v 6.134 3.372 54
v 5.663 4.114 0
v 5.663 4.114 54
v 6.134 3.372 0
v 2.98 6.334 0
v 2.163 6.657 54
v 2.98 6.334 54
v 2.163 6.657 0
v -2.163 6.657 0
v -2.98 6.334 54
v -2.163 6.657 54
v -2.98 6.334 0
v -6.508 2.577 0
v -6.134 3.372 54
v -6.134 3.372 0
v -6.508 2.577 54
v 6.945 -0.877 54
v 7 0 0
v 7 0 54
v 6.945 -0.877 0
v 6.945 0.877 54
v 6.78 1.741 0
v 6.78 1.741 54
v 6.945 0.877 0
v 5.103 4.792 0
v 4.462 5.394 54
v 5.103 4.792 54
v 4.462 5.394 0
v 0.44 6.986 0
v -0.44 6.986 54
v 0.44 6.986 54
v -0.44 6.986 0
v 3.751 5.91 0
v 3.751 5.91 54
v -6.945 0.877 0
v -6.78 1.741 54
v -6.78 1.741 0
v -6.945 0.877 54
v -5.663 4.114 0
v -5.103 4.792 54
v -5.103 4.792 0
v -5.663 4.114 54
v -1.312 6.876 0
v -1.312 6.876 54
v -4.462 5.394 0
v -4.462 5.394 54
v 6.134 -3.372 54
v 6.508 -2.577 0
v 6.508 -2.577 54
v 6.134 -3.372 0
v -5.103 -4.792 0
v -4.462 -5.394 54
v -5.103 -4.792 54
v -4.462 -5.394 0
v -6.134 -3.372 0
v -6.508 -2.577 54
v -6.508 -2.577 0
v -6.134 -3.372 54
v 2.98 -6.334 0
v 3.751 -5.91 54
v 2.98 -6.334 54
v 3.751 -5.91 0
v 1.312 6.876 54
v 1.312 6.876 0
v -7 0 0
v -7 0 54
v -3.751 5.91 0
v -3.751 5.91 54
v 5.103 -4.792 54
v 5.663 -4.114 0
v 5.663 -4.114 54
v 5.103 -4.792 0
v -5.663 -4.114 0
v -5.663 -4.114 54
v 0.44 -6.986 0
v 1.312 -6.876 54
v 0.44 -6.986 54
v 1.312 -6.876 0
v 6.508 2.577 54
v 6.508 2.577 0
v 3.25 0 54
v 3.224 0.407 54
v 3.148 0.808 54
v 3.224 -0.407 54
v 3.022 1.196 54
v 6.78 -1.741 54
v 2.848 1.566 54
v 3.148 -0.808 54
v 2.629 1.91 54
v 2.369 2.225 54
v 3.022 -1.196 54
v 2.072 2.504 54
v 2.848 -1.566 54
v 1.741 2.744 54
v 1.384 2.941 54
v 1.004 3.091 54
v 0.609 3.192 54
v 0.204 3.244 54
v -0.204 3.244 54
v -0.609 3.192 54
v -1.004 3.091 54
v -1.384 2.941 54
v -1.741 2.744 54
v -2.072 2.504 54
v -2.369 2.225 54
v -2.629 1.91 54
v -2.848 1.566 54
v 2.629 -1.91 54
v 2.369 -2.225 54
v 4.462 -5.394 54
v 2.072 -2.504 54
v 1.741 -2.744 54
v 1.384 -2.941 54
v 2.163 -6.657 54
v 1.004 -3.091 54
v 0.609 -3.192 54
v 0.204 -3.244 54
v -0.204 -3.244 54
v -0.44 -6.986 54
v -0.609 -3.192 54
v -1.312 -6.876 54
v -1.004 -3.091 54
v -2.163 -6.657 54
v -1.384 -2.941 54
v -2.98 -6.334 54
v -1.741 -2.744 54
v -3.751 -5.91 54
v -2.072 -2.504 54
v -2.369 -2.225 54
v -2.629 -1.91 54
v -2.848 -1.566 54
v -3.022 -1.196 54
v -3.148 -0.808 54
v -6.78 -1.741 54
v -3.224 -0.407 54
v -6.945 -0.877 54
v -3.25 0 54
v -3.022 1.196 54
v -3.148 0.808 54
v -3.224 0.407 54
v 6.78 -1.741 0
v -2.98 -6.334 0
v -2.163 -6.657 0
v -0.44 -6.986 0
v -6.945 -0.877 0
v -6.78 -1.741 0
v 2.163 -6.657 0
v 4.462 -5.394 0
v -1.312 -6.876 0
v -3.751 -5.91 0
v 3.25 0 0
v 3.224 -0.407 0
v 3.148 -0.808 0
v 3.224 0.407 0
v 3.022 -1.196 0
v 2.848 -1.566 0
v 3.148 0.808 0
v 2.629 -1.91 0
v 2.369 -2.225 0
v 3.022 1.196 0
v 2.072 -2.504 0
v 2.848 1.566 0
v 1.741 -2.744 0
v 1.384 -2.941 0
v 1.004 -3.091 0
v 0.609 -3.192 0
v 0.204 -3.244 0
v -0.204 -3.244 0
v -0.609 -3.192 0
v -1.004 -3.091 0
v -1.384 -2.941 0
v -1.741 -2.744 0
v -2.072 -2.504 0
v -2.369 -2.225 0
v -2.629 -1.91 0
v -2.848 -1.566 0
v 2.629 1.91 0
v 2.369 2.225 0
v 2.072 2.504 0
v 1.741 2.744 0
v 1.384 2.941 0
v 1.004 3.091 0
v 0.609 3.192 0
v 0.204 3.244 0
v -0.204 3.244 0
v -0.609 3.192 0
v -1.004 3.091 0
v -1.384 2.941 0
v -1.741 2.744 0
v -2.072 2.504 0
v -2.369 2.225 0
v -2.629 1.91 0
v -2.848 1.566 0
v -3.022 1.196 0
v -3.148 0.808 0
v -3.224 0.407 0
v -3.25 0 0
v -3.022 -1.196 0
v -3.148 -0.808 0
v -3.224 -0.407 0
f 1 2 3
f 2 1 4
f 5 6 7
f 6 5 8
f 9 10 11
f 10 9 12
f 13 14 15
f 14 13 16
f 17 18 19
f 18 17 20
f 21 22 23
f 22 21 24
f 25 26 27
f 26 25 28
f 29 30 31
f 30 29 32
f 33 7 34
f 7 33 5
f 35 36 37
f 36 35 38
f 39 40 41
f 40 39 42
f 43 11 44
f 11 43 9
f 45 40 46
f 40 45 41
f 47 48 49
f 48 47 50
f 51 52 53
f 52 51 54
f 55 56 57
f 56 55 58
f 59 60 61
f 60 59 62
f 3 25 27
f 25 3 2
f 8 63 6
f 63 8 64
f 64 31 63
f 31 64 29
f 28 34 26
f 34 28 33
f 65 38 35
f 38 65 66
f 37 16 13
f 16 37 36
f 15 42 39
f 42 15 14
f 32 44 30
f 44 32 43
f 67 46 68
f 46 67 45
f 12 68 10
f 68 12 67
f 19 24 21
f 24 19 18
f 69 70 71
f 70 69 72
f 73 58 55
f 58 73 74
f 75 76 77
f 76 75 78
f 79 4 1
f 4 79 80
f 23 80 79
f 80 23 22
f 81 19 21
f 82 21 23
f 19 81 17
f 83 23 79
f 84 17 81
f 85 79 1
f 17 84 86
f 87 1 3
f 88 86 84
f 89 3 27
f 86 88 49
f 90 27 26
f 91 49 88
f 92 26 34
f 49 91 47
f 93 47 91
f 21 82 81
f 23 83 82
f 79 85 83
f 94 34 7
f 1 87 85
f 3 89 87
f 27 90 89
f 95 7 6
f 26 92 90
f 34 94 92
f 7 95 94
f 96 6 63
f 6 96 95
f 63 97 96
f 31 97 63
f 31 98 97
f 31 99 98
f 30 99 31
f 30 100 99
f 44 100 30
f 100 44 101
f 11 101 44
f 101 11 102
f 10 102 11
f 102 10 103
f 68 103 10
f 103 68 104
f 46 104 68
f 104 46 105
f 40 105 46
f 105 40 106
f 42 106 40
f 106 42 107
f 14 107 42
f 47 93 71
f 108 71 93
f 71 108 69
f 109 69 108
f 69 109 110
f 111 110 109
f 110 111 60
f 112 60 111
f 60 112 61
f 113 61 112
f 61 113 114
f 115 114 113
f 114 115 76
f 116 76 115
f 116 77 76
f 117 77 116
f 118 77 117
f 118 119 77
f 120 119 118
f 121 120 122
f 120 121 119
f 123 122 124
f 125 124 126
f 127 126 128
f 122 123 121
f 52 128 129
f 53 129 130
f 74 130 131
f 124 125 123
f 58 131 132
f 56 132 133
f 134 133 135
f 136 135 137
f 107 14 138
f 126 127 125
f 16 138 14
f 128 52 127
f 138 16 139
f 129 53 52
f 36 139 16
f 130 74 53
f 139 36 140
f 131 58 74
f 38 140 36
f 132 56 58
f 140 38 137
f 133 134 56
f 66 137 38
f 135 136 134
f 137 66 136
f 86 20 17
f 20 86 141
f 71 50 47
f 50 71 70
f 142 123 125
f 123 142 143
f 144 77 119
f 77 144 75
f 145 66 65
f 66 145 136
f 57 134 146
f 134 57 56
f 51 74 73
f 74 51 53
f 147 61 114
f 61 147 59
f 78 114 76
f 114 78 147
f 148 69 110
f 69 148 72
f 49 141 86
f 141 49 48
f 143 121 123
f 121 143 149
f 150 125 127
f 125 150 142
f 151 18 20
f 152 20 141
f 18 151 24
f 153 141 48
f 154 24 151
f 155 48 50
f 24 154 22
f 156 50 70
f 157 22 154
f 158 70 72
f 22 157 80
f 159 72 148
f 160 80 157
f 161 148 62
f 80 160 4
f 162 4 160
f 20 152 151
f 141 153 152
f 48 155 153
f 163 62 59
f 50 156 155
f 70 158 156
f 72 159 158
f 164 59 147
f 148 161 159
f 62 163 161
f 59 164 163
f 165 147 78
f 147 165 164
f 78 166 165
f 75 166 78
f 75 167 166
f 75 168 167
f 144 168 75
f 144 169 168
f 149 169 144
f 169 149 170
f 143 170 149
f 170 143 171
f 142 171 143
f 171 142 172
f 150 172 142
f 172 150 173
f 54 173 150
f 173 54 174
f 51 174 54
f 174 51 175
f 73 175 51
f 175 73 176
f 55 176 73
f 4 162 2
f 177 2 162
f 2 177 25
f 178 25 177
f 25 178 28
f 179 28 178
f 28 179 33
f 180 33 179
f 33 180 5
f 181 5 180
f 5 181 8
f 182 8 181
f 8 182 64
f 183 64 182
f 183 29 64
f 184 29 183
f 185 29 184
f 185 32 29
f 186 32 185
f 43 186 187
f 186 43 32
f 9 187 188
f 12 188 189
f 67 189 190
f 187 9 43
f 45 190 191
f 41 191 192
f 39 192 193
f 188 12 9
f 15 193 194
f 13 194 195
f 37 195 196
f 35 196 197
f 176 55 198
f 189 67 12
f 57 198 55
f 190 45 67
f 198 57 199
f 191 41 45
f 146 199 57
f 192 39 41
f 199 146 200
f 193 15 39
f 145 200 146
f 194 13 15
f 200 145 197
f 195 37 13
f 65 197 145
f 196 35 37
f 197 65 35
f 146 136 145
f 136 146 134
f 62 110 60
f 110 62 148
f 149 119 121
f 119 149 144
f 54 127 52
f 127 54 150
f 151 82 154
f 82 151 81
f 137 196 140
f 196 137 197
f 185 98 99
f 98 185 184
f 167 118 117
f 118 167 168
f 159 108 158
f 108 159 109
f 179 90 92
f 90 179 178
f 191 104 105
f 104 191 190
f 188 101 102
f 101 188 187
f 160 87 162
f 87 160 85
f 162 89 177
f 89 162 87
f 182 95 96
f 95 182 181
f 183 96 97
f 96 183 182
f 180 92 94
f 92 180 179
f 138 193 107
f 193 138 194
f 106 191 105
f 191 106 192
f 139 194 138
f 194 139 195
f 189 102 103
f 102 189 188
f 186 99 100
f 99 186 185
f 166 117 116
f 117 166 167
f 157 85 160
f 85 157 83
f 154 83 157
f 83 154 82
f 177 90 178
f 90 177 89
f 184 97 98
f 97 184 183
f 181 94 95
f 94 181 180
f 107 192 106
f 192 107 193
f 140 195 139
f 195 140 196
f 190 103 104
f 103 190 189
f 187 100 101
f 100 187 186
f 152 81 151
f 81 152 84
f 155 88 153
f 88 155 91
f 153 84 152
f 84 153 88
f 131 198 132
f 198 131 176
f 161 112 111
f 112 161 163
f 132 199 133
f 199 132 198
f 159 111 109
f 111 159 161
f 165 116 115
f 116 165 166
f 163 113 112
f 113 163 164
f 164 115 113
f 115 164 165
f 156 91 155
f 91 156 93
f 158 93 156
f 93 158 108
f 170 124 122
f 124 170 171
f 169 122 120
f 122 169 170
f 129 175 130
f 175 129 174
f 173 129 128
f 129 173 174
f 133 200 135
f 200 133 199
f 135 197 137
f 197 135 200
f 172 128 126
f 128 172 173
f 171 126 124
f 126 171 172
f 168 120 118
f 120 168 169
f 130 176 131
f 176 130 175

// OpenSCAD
$fn = 50;


difference() {
	union() {
		cylinder(h = 54, r = 7.0000000000);
	}
	union() {
		translate(v = [0, 0, -100]) {
			cylinder(h = 200, r = 3.2500000000);
		}
		translate(v = [0, 0, -100]) {
			cylinder(h = 200, r = 1.8000000000);
		}
	}
}
